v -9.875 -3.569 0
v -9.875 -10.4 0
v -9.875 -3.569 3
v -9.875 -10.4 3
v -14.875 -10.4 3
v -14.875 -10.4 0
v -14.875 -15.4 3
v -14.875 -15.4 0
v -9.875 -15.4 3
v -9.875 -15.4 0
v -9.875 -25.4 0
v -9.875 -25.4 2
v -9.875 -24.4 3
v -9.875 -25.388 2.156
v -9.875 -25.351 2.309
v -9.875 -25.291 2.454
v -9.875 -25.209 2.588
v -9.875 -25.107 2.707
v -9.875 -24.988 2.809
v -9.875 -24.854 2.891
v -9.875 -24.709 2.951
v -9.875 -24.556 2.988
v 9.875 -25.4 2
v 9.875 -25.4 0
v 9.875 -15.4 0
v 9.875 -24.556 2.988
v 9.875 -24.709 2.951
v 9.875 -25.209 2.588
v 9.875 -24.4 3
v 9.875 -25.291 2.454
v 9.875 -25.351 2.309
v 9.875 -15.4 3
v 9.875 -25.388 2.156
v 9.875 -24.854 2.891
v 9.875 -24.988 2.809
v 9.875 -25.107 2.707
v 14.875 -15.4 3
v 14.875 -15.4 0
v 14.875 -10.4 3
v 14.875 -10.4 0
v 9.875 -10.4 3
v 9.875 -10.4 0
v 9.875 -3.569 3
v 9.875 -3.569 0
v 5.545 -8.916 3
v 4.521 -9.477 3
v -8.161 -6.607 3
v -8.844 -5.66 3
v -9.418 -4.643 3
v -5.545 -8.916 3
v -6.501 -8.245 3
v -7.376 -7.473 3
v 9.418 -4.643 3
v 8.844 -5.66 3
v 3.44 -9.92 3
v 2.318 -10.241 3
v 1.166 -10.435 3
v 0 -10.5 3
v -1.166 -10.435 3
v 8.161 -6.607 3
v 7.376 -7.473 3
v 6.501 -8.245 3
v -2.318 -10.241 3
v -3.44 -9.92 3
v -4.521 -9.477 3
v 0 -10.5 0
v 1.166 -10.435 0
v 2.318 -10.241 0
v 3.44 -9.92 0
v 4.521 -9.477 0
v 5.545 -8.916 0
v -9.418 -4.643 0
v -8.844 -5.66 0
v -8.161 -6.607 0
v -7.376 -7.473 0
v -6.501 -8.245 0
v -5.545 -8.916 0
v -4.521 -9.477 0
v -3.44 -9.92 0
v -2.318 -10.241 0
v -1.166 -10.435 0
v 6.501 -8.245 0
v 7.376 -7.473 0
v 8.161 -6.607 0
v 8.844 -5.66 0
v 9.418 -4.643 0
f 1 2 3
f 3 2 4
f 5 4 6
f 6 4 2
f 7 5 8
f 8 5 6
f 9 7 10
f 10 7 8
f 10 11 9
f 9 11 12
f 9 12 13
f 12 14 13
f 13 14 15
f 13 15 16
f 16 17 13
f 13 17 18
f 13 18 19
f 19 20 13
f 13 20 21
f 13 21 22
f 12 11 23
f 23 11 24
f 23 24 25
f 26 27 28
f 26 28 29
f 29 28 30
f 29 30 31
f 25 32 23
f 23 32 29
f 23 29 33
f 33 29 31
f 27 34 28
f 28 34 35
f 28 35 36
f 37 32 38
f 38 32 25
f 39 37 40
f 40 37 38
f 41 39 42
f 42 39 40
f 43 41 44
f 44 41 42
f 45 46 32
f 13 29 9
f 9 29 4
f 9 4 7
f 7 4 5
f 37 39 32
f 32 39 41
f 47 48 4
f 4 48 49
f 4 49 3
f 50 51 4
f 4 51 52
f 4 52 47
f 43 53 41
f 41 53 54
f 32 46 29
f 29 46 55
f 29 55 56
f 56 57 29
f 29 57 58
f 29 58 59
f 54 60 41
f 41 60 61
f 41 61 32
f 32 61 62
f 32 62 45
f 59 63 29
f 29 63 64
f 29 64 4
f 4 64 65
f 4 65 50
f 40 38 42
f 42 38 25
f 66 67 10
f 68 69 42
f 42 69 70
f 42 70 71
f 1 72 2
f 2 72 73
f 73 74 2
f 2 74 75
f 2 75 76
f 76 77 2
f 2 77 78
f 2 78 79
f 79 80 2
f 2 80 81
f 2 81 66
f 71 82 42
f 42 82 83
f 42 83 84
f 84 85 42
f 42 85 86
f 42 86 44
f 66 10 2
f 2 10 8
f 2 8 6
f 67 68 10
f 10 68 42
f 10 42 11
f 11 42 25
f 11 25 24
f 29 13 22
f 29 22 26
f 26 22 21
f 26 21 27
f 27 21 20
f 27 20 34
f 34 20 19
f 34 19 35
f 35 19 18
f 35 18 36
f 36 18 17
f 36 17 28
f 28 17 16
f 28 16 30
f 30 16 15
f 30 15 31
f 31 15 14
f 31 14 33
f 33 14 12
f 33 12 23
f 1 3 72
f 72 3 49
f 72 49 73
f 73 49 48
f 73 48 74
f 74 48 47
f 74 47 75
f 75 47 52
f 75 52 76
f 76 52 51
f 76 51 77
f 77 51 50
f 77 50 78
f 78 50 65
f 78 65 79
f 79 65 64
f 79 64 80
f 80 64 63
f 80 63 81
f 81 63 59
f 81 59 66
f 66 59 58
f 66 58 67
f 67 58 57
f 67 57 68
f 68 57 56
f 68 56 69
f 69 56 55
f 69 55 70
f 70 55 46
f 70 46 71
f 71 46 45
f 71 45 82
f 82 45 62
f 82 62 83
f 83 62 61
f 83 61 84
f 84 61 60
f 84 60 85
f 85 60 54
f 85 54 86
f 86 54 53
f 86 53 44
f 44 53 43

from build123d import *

# Parameters (mm, degrees)
CROQUIS1_R              = 9.875
CROQUIS1_W              = 5
CROQUIS1_H              = 5
SALIENTE_EXTRUIR1_DEPTH = 3
REDONDEO1_R             = 1
CROQUIS2_R              = 10.5
CORTAR_EXTRUIR1_DEPTH   = 10


with BuildPart() as part:
    # Croquis1 → Saliente-Extruir1 (new body)
    with BuildSketch(Plane.XY):
        Circle(CROQUIS1_R)
        with BuildLine():
            ThreePointArc((9.875, 0), (0, -9.875), (-9.875, 0))
            Line((-9.875, 0), (-9.875, -10.4))
            Line((-9.875, -10.4), (-9.875, -15.4))
            Line((-9.875, -15.4), (-9.875, -25.4))
            Line((-9.875, -25.4), (9.875, -25.4))
            Line((9.875, -25.4), (9.875, -15.4))
            Line((9.875, -15.4), (9.875, -10.4))
            Line((9.875, -10.4), (9.875, 0))
        make_face()
        with Locations((12.375, -12.9)):
            Rectangle(CROQUIS1_W, CROQUIS1_H)
        with Locations((-12.375, -12.9)):
            Rectangle(CROQUIS1_W, CROQUIS1_H)
    extrude(amount=SALIENTE_EXTRUIR1_DEPTH)

    # Redondeo1
    redondeo1_edges = [part.edges().sort_by_distance(p)[0] for p in [
        (0, -25.4, 3),
    ]]
    fillet(redondeo1_edges, radius=REDONDEO1_R)

    # Croquis2 → Cortar-Extruir1 (cut)
    with BuildSketch(Plane.XY.offset(3)):
        Circle(CROQUIS2_R)
    extrude(amount=-CORTAR_EXTRUIR1_DEPTH, mode=Mode.SUBTRACT)


solid = part.part
